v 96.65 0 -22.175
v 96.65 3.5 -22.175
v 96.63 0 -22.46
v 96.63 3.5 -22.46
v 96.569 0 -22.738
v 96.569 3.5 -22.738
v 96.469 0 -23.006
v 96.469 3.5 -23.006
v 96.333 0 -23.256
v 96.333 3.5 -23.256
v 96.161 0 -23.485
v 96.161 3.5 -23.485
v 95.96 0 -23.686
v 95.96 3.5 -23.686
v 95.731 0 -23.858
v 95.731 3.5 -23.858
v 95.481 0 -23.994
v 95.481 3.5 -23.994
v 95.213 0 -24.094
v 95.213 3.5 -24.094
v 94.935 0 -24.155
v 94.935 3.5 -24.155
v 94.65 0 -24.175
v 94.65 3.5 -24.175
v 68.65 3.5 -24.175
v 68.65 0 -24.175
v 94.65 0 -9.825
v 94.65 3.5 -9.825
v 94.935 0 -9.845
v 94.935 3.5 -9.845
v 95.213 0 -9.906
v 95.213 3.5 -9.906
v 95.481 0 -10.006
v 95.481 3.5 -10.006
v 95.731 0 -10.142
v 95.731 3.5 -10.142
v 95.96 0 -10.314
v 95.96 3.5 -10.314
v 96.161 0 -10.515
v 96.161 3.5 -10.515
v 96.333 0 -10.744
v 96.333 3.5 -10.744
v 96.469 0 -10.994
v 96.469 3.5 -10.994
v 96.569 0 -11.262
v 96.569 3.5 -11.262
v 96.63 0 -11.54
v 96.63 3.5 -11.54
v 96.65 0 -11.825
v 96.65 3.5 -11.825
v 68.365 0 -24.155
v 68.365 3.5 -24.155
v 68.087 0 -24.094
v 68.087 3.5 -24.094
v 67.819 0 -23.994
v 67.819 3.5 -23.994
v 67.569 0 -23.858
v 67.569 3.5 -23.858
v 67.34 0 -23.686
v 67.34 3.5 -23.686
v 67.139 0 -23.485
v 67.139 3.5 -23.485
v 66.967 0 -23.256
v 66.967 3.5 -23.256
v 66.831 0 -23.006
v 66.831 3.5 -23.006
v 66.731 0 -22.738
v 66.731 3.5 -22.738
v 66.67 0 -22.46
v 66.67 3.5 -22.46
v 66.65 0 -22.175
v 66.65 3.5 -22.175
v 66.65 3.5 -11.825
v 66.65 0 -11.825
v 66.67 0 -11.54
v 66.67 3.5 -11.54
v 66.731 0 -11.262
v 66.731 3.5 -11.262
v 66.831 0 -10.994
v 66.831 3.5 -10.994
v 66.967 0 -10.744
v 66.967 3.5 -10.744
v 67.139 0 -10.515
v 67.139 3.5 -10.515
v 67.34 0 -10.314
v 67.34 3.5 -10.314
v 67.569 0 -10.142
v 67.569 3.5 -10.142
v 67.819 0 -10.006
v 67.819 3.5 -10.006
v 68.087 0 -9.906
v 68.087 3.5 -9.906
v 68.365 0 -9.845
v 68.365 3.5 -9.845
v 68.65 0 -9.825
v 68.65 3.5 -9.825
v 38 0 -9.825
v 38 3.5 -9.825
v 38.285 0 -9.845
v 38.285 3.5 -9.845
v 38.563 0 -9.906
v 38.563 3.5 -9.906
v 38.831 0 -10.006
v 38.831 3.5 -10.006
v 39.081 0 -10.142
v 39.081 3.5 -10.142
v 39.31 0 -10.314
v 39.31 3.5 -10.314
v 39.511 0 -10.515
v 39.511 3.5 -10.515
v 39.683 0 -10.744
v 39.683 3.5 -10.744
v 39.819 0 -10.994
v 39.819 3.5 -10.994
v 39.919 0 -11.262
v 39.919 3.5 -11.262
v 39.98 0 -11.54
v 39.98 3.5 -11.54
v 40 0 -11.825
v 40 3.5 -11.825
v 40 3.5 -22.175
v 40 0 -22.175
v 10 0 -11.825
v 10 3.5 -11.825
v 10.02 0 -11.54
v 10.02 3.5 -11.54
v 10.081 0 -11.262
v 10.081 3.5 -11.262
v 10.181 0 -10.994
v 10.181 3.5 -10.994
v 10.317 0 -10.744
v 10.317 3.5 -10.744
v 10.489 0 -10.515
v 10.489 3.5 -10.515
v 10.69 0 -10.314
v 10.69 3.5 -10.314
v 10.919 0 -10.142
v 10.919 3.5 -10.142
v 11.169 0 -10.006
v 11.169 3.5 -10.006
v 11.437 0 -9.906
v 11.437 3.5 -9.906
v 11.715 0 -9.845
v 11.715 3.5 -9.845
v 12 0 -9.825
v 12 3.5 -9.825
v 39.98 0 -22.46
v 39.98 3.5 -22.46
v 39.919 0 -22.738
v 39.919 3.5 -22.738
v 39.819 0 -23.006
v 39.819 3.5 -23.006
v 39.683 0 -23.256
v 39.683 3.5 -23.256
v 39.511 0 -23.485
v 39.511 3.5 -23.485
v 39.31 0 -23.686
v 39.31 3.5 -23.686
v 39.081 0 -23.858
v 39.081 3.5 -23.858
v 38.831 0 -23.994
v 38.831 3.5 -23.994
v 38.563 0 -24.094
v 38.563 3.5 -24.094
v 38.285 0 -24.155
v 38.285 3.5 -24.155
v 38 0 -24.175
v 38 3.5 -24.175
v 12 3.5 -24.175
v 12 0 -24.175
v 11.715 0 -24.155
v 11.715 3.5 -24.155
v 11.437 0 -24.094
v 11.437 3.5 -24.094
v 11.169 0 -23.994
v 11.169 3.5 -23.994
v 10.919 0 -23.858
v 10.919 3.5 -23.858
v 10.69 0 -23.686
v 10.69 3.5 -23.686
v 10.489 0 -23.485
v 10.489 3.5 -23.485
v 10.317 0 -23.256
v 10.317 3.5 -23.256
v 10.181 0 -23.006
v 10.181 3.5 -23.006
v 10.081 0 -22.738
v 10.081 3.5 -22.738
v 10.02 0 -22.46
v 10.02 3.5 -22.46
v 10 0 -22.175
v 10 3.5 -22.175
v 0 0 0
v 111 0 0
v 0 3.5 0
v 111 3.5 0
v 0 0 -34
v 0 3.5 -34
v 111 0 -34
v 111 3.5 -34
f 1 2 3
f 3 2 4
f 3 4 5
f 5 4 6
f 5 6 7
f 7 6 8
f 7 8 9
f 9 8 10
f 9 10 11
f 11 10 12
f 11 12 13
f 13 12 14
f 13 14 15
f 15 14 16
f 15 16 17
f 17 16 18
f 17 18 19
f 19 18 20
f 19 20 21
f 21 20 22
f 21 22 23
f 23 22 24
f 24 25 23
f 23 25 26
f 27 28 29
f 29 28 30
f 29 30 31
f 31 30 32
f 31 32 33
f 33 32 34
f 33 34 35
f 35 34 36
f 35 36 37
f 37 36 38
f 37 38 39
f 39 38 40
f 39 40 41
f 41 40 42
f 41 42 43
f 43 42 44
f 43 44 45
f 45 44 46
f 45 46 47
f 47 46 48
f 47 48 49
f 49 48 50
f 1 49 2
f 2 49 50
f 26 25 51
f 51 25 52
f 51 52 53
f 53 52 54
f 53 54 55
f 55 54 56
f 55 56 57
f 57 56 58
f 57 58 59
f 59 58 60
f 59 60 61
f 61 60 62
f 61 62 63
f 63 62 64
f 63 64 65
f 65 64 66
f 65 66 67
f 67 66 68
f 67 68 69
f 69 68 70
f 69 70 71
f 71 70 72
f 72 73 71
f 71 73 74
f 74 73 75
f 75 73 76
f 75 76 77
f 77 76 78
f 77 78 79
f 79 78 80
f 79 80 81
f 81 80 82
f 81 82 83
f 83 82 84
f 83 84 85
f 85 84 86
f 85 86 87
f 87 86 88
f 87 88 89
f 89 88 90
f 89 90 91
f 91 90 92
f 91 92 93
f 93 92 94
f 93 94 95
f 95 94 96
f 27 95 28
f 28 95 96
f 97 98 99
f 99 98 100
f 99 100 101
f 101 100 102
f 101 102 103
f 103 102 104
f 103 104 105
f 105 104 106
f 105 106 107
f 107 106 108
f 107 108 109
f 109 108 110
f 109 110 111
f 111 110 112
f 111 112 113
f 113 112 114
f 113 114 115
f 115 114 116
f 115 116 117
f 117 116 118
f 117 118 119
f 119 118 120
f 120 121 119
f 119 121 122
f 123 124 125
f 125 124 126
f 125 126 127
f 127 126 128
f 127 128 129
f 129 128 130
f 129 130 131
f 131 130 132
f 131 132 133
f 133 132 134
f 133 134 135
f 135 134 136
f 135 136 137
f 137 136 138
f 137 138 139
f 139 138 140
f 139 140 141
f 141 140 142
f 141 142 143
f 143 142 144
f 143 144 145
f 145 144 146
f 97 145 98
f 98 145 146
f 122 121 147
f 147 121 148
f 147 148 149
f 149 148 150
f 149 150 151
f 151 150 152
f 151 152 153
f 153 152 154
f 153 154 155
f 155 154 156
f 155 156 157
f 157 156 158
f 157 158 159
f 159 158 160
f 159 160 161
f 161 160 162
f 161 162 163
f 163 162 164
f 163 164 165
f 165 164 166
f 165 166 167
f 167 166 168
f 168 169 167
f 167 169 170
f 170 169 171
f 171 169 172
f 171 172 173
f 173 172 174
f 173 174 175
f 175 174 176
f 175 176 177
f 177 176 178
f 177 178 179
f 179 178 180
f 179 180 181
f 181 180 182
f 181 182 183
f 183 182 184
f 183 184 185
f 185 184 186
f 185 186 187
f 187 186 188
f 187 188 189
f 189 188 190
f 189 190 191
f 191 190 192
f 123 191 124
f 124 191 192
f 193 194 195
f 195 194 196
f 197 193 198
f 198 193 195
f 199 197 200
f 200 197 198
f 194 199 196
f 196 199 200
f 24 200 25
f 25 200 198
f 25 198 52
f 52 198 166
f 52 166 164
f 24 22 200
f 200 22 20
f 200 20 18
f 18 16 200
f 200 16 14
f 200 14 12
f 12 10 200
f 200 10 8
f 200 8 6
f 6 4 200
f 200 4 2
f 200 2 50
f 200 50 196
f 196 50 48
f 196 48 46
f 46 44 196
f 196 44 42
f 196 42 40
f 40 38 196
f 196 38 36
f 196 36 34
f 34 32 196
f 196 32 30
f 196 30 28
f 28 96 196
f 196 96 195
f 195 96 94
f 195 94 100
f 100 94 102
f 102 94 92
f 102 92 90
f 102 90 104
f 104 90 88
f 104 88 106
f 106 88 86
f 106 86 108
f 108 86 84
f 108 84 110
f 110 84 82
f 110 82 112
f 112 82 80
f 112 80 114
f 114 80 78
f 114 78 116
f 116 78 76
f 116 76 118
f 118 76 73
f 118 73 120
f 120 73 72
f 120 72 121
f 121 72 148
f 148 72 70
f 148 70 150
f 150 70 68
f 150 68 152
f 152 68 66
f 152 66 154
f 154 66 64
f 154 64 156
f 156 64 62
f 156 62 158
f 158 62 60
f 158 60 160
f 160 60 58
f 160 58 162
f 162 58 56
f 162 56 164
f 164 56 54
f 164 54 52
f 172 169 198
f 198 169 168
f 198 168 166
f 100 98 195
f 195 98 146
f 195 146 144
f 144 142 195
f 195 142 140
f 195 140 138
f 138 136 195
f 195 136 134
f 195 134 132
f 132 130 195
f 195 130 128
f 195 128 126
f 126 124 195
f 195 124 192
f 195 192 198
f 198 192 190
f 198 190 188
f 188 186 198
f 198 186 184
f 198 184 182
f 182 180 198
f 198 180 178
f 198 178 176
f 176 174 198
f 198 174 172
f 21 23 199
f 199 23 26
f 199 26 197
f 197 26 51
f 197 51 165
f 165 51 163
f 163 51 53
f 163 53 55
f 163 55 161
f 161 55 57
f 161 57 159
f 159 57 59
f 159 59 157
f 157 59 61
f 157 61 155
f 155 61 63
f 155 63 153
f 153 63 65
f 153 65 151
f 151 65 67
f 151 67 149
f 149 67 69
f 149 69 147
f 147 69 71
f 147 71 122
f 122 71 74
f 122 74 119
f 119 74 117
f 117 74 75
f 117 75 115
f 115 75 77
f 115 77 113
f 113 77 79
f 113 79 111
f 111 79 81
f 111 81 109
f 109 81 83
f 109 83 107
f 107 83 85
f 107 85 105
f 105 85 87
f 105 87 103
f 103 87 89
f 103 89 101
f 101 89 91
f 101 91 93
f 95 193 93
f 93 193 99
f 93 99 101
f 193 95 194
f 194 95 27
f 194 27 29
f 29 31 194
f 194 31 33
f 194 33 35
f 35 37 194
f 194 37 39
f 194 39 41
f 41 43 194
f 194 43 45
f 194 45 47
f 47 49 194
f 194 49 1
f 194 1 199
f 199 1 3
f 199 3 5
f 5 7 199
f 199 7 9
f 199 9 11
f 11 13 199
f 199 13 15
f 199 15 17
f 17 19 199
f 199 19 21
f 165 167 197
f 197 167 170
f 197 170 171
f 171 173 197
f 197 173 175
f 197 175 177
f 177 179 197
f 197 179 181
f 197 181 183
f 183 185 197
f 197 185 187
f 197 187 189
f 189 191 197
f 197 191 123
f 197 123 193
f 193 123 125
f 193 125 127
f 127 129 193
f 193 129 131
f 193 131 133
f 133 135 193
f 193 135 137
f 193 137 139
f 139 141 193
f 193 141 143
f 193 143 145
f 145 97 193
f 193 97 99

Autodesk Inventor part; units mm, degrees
ref_plane "YZ Plane" through (0, 0, 0) normal (1, 0, 0) x (0, 1, 0)
ref_plane "XZ Plane" through (0, 0, 0) normal (0, 1, 0) x (-1, 0, 0)
ref_plane "XY Plane" through (0, 0, 0) normal (0, 0, 1) x (1, 0, 0)
sketch "Sketch1" plane through (0, 0, 0) normal (0, 1, 0) x (-1, 0, 0)
  line L0 (0, 0) -> (-111, 0)
  line L1 (-111, 0) -> (-111, -34)
  line L2 (-111, -34) -> (0, -34)
  line L3 (0, -34) -> (0, 0)
  dimension "d0" = 111
  dimension "d1" = 34
extrude "Extrusion1" add sketch "Sketch1" along normal blind 3.5
sketch "Sketch2" plane through (0, 3.5, 0) normal (0, 1, 0) x (1, 0, 0)
  line L0 (10, 9.825) -> (40, 9.825)
  line L1 (40, 9.825) -> (40, 24.175)
  line L2 (40, 24.175) -> (10, 24.175)
  line L3 (10, 24.175) -> (10, 9.825)
  line L4 (66.65, 9.825) -> (96.65, 9.825)
  line L5 (96.65, 9.825) -> (96.65, 24.175)
  line L6 (96.65, 24.175) -> (66.65, 24.175)
  line L7 (66.65, 24.175) -> (66.65, 9.825)
  point P0 (0, 0)
  point P1 (66.65, 17)
  dimension "d4" = 30
  dimension "d5" = 14.35
  dimension "d6" = 30
  dimension "d7" = 14.35
  dimension "d8" = 26.65
extrude "Extrusion2" cut sketch "Sketch2" against normal blind 3.5
fillet "Fillet1" radius 2 8 edges at (10, 1.75, -24.175) (40, 1.75, -24.175) (10, 1.75, -9.825) (40, 1.75, -9.825) (66.65, 1.75, -9.825) (66.65, 1.75, -24.175) (96.65, 1.75, -9.825) (96.65, 1.75, -24.175)
properties part number "arcade_lid_extrusion_3.5"
